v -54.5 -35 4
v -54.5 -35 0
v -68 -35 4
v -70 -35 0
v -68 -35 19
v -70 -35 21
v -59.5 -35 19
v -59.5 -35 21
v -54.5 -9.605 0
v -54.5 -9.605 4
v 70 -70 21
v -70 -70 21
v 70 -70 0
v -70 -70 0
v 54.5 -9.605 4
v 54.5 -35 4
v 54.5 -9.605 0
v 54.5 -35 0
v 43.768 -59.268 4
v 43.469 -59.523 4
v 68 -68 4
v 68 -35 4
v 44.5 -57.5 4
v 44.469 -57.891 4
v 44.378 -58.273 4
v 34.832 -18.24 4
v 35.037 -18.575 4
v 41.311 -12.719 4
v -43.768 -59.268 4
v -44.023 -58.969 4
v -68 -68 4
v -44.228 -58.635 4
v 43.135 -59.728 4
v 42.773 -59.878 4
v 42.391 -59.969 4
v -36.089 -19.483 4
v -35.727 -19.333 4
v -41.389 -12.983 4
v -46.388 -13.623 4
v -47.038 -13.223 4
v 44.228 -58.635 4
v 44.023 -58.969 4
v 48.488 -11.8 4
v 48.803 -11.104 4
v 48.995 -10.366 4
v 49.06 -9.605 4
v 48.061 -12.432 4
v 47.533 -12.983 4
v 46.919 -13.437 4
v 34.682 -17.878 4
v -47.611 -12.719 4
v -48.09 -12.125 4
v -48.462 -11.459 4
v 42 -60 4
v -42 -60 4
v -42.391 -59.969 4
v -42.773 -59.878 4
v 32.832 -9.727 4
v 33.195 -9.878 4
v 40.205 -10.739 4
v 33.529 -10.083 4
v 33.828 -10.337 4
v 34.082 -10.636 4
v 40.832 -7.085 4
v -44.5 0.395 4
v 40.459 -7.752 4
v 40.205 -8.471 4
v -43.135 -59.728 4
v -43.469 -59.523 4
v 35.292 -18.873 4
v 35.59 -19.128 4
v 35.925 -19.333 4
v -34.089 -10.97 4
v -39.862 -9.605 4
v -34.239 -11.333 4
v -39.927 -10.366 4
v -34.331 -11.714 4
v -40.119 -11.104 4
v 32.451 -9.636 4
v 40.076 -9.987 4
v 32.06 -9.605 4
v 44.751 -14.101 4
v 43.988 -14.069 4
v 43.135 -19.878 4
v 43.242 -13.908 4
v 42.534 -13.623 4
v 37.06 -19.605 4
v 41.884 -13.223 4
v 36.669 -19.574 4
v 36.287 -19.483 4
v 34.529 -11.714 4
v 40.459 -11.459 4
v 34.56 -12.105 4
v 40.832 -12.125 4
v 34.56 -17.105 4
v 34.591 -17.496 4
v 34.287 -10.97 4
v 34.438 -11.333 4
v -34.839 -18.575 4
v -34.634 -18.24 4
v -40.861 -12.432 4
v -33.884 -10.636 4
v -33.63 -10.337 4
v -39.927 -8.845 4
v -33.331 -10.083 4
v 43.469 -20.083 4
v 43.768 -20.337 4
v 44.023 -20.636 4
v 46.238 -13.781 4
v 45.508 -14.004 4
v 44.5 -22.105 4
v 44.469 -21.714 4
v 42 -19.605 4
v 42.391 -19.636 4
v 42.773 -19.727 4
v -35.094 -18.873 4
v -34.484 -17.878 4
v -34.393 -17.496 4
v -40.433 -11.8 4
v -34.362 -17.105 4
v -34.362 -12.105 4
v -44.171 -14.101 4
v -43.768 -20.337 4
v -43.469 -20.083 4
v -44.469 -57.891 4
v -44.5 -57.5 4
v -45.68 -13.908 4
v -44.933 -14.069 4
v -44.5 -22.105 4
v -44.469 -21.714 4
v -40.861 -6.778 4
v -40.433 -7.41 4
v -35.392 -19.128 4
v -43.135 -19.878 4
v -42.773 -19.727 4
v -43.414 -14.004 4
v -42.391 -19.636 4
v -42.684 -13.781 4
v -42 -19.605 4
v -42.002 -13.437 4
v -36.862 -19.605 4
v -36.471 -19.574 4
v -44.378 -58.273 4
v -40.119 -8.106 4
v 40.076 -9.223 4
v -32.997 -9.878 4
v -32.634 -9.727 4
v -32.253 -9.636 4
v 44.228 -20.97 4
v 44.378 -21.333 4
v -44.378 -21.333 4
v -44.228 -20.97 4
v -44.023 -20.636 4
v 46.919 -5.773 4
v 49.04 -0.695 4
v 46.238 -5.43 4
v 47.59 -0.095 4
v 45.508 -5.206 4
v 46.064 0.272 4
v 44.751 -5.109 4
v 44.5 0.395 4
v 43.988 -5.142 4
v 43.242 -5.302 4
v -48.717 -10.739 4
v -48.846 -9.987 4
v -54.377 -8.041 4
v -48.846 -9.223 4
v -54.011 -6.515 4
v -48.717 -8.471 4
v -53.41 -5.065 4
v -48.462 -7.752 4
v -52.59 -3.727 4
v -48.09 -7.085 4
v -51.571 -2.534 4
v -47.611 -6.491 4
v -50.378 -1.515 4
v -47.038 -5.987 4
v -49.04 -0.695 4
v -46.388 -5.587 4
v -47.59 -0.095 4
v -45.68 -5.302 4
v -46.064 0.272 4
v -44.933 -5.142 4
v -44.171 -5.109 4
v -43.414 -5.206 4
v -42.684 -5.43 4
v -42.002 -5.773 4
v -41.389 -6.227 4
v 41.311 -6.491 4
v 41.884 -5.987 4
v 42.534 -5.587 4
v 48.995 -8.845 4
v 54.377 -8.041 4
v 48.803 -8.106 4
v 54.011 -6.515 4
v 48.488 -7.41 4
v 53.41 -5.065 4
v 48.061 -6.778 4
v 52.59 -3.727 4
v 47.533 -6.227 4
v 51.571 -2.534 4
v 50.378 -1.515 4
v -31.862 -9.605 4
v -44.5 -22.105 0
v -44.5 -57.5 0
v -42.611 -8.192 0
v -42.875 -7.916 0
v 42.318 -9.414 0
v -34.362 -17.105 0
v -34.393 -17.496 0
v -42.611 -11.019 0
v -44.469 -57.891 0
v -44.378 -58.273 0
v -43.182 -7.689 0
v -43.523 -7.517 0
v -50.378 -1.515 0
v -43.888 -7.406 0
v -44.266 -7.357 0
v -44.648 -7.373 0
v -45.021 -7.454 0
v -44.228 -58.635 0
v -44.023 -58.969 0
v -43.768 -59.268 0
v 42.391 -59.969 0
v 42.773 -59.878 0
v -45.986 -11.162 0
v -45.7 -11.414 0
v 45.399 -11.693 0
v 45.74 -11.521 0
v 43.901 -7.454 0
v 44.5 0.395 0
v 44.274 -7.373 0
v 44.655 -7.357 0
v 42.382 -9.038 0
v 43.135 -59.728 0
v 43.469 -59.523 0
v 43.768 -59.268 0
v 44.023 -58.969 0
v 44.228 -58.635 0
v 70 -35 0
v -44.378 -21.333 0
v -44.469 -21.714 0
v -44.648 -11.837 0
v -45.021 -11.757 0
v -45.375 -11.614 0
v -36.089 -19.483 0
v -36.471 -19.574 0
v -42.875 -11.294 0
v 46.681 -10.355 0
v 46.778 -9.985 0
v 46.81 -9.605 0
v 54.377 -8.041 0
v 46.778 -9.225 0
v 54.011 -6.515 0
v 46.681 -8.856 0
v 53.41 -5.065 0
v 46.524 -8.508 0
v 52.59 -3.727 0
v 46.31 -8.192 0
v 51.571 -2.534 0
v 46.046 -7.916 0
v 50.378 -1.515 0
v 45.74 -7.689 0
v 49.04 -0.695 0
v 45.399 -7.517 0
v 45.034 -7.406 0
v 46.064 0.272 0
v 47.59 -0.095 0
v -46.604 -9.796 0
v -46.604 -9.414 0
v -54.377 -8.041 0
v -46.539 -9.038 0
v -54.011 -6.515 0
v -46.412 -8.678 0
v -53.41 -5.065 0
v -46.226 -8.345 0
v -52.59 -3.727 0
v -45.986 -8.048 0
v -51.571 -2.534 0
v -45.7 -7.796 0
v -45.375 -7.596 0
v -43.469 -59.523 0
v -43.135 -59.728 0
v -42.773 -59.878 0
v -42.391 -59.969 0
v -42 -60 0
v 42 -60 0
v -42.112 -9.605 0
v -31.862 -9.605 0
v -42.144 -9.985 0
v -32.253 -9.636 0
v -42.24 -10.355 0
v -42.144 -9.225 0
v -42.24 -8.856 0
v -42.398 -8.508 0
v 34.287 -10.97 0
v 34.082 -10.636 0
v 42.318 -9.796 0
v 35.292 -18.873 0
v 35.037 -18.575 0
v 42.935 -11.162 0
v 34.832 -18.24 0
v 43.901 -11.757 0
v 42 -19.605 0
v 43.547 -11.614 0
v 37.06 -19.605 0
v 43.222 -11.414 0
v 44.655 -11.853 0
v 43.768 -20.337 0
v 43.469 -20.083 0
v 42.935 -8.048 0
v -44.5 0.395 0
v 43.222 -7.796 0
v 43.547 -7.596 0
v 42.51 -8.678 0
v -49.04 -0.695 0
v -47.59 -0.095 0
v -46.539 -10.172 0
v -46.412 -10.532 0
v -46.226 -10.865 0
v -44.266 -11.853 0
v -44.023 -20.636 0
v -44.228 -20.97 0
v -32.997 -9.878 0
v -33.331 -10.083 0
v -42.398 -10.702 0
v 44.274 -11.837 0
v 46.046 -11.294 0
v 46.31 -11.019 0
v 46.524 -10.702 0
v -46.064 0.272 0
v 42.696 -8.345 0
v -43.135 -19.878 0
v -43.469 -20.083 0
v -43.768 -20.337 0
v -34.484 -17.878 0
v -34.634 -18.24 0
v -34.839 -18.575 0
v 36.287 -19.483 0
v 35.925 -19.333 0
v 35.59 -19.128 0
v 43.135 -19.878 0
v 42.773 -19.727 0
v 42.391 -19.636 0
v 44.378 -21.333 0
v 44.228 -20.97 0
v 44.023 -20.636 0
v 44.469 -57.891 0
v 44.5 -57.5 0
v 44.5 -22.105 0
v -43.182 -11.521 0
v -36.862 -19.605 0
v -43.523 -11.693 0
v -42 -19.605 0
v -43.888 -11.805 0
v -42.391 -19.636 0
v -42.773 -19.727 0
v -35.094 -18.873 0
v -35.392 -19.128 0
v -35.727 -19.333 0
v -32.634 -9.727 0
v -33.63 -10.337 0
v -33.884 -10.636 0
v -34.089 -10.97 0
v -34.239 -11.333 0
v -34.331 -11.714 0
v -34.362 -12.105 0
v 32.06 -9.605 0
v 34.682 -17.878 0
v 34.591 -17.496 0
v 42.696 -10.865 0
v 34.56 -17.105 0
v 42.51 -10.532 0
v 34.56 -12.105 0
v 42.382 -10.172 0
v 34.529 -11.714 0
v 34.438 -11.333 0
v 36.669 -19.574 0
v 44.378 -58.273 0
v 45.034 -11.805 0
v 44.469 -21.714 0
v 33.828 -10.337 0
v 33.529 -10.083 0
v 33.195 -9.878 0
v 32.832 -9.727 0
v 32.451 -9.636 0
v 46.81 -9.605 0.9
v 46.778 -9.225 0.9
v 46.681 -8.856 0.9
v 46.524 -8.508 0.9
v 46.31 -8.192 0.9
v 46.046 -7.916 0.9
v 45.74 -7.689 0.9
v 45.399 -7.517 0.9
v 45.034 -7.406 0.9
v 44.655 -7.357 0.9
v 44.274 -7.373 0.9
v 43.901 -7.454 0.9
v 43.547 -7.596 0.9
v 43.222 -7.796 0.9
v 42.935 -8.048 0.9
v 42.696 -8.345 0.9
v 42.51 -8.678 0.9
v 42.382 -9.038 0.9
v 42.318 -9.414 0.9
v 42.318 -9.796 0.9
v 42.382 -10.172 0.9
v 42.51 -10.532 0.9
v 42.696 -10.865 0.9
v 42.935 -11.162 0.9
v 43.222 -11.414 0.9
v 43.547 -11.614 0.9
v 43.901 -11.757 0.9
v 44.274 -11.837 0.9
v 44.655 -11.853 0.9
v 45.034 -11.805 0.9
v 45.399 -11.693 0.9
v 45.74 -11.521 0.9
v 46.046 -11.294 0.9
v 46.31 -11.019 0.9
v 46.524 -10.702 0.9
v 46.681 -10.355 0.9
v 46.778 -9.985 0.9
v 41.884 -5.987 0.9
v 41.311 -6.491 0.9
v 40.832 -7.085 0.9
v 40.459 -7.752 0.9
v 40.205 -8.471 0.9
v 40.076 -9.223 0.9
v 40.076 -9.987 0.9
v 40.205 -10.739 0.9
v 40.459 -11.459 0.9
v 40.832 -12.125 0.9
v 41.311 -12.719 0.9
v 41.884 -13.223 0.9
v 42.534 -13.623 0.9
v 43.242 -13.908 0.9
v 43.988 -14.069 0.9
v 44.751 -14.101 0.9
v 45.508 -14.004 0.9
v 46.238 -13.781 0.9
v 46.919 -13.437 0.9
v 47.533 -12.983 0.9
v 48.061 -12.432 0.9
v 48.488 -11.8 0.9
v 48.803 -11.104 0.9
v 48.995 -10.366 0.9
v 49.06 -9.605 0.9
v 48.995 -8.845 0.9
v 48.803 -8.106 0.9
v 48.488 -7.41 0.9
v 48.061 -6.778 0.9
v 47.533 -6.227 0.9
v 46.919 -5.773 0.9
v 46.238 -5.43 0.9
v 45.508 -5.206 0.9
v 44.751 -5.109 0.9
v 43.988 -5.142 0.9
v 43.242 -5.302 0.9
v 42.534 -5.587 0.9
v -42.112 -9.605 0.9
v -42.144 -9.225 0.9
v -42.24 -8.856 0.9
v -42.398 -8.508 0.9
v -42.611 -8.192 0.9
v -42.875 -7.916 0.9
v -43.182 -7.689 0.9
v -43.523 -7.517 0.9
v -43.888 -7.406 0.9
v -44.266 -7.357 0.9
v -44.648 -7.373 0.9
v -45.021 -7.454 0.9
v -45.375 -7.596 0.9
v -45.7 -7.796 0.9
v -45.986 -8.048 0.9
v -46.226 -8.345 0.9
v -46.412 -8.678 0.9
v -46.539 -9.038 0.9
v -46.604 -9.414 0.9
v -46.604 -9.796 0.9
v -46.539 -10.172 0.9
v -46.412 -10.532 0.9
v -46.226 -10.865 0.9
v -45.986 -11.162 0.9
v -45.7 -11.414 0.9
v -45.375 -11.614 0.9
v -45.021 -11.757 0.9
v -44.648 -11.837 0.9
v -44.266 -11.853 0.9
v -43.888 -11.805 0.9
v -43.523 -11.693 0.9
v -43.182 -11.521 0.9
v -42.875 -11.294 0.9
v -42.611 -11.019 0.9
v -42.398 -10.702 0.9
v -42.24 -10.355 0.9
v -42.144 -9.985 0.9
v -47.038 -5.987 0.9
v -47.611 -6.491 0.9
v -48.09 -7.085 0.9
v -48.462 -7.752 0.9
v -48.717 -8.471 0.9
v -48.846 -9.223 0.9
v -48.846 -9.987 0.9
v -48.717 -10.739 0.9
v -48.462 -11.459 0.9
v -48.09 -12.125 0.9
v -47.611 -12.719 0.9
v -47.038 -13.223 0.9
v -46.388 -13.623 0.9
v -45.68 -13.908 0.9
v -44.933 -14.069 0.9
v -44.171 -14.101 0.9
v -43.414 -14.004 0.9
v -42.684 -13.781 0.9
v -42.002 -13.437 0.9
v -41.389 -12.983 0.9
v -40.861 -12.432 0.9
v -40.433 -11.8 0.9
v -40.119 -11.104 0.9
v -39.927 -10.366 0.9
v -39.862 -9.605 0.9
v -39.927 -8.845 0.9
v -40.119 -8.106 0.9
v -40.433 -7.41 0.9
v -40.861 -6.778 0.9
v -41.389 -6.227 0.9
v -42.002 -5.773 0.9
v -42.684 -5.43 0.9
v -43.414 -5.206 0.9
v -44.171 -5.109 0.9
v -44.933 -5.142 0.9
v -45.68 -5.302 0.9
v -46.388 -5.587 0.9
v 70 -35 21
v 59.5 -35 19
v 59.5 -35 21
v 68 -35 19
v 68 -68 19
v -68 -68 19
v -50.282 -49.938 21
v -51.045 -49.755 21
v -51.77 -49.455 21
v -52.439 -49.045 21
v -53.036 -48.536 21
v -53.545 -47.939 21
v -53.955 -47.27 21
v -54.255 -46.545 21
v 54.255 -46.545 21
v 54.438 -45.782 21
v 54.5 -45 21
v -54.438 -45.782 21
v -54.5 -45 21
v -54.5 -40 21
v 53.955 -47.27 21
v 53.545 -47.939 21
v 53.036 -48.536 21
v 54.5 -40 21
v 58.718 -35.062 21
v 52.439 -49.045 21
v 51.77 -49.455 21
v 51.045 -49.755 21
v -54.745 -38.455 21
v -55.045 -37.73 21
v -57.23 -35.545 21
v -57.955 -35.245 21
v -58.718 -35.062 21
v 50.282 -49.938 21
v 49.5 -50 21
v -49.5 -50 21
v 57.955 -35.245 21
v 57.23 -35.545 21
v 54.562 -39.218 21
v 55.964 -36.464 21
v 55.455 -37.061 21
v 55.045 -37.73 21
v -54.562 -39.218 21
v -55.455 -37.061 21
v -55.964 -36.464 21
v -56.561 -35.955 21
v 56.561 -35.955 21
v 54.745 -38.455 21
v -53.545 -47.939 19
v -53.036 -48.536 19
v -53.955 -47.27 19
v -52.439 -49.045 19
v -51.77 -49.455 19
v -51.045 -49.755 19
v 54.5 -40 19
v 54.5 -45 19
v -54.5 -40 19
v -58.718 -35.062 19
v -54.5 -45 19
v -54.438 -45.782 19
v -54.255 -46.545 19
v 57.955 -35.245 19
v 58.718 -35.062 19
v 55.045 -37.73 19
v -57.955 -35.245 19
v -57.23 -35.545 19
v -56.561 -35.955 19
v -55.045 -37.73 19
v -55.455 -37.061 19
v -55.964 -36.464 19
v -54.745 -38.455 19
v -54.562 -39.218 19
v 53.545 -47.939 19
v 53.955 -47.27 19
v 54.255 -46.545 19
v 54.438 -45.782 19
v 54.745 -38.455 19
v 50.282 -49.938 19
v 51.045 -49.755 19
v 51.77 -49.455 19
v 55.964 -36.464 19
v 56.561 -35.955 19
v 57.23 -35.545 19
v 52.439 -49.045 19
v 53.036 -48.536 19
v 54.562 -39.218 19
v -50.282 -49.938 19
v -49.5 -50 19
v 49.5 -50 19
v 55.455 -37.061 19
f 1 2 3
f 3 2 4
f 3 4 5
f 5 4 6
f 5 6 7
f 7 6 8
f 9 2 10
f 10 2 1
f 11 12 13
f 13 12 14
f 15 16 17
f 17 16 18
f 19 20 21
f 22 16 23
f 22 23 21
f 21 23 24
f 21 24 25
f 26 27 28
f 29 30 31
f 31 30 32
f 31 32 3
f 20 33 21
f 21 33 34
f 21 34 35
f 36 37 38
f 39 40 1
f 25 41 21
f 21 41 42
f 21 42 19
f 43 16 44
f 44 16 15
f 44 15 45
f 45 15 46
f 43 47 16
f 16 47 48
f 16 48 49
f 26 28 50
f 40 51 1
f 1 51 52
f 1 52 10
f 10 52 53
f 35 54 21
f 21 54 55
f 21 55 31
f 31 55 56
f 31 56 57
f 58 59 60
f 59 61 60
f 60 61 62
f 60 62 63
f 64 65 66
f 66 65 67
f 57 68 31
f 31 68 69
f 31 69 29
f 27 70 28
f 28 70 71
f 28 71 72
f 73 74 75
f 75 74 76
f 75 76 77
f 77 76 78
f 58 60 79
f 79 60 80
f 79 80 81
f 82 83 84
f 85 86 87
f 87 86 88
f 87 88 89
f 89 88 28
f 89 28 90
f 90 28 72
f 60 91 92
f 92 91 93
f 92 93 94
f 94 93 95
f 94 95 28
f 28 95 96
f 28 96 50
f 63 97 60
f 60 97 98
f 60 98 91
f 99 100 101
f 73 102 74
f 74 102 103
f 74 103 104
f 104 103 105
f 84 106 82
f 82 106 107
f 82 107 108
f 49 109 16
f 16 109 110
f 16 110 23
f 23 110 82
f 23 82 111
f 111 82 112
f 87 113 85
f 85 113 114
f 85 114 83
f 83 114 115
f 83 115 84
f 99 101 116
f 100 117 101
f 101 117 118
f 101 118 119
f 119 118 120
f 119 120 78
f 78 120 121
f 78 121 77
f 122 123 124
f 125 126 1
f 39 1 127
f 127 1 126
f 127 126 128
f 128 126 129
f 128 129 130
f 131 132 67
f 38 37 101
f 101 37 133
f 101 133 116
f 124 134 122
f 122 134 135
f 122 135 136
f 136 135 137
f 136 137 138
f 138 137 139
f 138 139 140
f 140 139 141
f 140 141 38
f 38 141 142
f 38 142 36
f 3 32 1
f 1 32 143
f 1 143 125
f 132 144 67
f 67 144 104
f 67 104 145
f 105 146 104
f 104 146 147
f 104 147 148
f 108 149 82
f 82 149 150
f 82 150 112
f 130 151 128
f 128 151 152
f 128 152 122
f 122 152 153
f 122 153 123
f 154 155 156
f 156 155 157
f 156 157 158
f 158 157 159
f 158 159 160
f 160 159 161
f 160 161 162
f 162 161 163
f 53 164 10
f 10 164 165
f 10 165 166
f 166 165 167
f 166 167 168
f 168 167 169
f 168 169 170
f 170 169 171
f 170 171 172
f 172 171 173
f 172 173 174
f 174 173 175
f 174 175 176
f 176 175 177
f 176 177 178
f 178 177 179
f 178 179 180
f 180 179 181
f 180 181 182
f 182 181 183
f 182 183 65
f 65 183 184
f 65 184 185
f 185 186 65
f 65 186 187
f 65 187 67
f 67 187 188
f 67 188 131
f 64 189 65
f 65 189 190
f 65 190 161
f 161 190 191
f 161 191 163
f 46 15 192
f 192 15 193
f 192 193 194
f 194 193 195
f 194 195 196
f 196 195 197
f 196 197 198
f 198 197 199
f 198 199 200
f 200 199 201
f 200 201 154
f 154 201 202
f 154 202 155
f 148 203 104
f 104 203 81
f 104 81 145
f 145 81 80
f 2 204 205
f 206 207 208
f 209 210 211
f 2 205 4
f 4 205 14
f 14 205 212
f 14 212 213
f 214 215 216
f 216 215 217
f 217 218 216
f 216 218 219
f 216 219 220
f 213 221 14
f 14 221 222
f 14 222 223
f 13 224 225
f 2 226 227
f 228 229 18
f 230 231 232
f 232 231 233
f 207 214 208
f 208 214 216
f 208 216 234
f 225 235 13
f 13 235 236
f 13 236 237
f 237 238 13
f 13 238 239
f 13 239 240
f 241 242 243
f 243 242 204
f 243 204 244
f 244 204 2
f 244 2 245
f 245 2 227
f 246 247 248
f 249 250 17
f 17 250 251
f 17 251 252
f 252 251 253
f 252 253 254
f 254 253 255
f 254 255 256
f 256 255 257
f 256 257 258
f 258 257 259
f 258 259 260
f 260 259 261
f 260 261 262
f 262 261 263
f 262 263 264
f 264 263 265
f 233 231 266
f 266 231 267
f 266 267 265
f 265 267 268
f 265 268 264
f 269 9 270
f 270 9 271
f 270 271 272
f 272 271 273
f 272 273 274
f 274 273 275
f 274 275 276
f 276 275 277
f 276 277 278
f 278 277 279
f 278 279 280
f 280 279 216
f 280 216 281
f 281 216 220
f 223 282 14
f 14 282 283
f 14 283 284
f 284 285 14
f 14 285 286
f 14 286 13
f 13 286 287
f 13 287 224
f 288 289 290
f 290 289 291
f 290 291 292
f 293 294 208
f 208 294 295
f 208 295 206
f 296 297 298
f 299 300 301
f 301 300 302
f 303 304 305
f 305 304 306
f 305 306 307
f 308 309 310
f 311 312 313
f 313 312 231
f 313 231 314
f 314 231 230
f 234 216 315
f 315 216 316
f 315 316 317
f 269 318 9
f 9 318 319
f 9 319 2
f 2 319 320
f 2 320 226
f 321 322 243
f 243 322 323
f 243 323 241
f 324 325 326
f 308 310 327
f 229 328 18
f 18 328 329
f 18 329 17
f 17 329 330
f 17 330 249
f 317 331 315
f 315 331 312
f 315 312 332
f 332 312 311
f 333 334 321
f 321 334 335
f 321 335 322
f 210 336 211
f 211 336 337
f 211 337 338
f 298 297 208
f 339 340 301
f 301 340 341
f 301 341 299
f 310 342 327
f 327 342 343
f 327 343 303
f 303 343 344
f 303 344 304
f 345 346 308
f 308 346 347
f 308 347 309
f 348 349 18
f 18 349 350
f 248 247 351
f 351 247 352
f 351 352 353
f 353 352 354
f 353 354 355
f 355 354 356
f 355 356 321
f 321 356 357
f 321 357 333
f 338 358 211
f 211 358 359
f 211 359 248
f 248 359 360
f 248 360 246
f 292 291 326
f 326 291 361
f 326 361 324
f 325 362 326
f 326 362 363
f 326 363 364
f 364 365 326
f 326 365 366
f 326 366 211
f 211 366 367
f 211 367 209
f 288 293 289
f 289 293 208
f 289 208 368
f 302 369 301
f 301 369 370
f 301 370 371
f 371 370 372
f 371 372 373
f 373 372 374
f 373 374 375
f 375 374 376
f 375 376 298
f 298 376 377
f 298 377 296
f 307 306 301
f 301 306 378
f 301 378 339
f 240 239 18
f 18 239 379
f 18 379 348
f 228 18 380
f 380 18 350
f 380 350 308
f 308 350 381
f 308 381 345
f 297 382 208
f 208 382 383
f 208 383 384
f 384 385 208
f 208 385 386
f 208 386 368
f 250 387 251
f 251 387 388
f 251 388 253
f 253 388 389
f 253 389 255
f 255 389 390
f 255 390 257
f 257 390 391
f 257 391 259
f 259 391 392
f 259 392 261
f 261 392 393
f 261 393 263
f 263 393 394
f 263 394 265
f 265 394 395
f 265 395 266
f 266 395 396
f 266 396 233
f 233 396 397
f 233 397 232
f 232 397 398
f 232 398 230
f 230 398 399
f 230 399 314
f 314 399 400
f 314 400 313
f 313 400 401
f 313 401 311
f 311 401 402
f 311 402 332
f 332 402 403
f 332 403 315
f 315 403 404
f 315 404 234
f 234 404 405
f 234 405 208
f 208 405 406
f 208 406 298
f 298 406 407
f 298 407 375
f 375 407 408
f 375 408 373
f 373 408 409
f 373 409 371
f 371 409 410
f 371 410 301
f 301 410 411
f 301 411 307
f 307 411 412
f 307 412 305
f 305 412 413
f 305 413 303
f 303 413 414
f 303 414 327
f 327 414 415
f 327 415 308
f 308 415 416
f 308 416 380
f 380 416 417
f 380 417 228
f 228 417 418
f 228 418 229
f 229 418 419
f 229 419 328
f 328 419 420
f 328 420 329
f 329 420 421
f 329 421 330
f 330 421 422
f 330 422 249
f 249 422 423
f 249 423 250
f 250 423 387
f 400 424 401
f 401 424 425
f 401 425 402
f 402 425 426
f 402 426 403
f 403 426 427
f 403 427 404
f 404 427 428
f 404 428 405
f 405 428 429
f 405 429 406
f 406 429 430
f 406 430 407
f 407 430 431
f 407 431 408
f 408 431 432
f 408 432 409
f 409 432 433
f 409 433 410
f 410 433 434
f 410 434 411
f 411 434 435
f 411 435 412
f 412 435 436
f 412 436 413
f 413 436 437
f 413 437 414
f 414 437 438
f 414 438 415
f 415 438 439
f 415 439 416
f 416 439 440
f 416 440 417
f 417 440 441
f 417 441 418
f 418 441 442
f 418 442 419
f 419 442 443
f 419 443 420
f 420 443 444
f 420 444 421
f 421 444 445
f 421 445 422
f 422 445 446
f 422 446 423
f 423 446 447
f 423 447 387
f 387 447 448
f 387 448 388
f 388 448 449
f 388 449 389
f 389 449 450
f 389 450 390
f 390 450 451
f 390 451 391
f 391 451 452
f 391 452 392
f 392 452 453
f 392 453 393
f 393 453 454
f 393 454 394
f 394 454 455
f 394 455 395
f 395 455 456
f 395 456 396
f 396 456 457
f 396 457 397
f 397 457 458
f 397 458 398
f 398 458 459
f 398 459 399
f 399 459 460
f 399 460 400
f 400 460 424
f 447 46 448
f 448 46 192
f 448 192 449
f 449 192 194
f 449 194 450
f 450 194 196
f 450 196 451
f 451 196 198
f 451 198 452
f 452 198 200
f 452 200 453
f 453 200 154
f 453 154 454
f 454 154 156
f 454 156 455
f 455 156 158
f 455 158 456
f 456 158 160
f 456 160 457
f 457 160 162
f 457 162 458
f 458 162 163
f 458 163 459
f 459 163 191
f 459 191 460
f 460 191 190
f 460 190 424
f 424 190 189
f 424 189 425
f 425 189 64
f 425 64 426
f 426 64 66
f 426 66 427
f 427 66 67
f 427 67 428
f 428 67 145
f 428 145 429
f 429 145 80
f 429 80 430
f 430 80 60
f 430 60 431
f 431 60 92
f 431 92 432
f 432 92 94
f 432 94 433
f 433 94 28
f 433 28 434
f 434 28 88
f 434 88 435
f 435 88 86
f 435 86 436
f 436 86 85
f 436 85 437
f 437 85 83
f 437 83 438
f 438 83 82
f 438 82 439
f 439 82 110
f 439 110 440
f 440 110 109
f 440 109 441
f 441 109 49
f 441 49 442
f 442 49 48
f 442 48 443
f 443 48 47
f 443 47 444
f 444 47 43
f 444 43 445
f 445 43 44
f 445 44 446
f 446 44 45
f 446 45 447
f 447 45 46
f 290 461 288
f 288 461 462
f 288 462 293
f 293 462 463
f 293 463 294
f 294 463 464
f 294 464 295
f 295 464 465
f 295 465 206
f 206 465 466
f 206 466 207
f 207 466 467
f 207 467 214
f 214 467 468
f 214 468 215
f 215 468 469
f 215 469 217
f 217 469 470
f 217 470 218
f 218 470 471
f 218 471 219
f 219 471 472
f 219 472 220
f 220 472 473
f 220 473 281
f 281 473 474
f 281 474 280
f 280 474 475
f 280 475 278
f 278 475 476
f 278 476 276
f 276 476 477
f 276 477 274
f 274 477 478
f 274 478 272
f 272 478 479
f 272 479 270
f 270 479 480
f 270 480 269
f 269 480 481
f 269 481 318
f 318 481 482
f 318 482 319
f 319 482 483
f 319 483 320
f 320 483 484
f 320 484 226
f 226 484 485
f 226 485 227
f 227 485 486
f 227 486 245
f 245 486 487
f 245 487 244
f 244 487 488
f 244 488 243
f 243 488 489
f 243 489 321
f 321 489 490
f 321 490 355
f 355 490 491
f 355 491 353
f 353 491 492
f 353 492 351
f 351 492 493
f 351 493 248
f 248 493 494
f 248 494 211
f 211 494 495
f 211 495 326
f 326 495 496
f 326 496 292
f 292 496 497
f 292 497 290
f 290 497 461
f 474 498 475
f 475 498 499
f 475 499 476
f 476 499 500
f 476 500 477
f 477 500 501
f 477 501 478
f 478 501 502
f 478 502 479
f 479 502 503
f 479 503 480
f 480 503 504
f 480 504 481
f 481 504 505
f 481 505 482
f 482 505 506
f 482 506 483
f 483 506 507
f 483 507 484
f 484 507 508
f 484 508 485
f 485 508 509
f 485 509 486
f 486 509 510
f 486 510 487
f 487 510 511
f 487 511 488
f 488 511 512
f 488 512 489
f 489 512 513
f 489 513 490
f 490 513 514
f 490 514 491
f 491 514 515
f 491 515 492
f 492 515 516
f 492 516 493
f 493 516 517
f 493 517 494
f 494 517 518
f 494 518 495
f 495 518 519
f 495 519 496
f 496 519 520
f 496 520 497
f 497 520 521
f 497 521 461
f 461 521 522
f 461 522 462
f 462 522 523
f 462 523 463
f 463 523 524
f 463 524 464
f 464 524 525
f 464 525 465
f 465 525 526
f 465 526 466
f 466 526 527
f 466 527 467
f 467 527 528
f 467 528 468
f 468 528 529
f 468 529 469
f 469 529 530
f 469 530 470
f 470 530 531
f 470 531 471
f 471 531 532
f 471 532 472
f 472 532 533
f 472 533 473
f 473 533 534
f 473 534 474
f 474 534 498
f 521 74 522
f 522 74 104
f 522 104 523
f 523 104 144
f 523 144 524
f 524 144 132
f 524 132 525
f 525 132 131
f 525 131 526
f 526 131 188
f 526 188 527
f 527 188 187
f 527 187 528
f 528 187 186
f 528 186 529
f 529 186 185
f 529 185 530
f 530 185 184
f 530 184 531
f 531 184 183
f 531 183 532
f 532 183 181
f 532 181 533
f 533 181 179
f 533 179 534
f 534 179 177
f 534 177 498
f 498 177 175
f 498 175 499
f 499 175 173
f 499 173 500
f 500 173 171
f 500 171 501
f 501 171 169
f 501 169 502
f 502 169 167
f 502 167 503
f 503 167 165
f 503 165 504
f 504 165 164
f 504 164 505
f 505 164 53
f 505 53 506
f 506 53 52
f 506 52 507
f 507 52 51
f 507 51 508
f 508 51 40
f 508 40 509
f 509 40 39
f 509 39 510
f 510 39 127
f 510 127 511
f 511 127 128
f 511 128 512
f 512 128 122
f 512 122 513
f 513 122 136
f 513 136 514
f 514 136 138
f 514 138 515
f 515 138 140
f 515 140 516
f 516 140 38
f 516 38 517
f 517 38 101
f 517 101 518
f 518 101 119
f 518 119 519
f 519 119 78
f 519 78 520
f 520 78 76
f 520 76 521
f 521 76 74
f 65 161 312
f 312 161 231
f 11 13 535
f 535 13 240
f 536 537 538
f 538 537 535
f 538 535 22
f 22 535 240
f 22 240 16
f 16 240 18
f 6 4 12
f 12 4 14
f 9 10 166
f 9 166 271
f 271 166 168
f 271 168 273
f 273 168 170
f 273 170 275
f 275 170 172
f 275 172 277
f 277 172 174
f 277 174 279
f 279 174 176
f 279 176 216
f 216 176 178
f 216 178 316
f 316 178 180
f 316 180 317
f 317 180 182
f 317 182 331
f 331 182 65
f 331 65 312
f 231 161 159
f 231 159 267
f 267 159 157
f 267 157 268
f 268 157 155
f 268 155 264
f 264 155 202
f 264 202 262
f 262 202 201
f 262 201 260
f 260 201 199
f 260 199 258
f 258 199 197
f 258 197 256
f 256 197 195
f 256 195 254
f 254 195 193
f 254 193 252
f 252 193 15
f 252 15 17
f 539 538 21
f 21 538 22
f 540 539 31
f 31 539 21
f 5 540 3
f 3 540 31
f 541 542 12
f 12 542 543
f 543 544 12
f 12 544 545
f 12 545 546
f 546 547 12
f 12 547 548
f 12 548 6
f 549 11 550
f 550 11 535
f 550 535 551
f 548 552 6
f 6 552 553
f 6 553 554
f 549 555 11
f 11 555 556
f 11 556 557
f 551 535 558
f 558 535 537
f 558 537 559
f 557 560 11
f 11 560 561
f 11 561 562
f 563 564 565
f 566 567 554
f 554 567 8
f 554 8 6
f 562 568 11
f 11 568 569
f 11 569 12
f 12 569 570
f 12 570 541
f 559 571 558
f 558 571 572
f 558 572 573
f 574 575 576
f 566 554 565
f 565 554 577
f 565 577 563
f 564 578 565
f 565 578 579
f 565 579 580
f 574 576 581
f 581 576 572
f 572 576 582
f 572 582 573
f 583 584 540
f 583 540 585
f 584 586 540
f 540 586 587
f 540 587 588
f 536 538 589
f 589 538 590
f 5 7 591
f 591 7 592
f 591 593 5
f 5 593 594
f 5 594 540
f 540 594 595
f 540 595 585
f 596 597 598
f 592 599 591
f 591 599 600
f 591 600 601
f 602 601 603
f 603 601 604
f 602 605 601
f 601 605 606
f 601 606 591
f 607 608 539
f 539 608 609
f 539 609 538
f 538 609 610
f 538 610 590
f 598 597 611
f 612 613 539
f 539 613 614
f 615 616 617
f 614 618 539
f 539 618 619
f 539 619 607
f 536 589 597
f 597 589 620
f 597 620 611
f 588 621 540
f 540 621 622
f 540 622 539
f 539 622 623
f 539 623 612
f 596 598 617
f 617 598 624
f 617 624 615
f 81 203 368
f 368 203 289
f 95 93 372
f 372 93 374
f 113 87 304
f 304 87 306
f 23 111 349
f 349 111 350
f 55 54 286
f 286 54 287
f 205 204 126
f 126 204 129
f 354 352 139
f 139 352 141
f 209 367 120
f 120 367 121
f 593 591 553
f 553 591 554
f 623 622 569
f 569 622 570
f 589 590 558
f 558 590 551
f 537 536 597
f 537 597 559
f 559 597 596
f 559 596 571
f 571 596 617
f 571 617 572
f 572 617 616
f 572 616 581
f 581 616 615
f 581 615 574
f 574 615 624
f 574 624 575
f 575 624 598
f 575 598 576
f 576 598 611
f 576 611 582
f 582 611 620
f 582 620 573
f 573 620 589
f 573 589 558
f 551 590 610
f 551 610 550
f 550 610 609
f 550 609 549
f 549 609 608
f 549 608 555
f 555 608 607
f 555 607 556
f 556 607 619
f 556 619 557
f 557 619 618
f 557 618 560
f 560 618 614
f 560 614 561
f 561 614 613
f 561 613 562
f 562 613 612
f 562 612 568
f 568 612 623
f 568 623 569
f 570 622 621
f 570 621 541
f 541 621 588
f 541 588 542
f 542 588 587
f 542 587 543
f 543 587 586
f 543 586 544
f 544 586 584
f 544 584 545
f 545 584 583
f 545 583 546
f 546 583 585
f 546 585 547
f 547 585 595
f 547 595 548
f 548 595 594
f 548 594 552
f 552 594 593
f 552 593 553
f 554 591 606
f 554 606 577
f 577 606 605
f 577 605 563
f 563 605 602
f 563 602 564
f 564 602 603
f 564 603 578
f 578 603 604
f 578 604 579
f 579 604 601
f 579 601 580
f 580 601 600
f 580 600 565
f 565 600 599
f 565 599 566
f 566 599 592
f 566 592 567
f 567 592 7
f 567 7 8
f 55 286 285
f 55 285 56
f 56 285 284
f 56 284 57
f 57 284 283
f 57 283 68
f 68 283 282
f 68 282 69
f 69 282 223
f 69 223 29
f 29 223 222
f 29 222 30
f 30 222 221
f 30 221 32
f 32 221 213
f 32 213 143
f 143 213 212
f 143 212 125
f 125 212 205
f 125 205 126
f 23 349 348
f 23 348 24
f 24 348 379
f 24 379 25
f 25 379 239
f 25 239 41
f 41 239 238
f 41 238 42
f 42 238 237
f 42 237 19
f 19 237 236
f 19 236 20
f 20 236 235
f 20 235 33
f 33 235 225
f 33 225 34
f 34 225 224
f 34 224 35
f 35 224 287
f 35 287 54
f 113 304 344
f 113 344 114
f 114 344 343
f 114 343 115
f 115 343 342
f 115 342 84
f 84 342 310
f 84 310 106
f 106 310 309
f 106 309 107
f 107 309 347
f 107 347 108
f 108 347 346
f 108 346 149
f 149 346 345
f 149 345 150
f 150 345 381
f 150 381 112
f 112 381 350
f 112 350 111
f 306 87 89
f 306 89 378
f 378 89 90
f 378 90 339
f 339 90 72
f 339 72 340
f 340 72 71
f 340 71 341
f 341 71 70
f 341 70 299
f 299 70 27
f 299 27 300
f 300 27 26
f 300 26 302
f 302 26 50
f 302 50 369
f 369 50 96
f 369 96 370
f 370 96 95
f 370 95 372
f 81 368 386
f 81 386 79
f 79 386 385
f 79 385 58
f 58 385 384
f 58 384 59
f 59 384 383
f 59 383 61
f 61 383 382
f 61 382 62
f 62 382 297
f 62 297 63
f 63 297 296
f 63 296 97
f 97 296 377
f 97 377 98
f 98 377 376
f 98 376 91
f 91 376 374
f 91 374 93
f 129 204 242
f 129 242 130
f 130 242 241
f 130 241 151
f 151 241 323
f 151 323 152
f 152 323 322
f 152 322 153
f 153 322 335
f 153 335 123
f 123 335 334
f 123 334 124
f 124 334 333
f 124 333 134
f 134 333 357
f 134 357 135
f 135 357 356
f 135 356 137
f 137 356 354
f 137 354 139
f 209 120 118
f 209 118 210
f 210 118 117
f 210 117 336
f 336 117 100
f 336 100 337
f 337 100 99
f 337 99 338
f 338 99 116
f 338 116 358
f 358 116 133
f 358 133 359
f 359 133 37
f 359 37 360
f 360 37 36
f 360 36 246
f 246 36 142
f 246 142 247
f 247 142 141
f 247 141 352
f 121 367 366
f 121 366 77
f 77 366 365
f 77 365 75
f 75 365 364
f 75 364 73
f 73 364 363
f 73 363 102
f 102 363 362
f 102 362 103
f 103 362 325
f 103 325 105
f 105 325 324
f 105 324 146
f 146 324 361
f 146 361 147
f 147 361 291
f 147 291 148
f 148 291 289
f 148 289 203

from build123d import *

# Parameters (mm, degrees)
SKETCH1_W                                        = 109
SKETCH1_H                                        = 140
BOSS_EXTRUDE1_DEPTH                              = 4
CBORE_FOR_M4_PAN_HEAD_MACHINE_SCREW1_D           = 4.5
CBORE_FOR_M4_PAN_HEAD_MACHINE_SCREW1_CBORE_D     = 9
CBORE_FOR_M4_PAN_HEAD_MACHINE_SCREW1_CBORE_DEPTH = 3.1
SKETCH6_W                                        = 25.091702427
SKETCH6_H                                        = 69.60512686
CUT_EXTRUDE1_DEPTH                               = 89.804560694
SKETCH7_W                                        = 140
SKETCH7_H                                        = 35
BOSS_EXTRUDE2_DEPTH                              = 4
FILLET1_R                                        = 10
BOSS_EXTRUDE3_DEPTH                              = 15
SKETCH9_W                                        = 2
SKETCH9_H                                        = 35
BOSS_EXTRUDE4_DEPTH                              = 140
CUT_EXTRUDE3_DEPTH                               = 101.444014257
SKETCH11_W                                       = 109
SKETCH11_H                                       = 15
CUT_EXTRUDE4_DEPTH                               = 2
FILLET6_R                                        = 5
CUT_EXTRUDE5_REACH                               = 103.198
SKETCH13_W                                       = 4
SKETCH13_H                                       = 73.569558417
CUT_EXTRUDE5_DIRECTION_2_REACH                   = 103.198
SKETCH14_W                                       = 4
SKETCH14_H                                       = 10
BOSS_EXTRUDE5_DEPTH                              = 38.816595147
FILLET9_R                                        = 2.5


with BuildPart() as part:
    # Sketch1 → Boss-Extrude1 (new body)
    with BuildSketch(Plane.XY):
        Rectangle(SKETCH1_W, SKETCH1_H)
    extrude(amount=BOSS_EXTRUDE1_DEPTH)

    # CBORE for M4 Pan Head Machine Screw1 (through all)
    with Locations(Plane.XY.offset(4)):
        with Locations((-19.408297573, 58.521958499), (19.408297573, 58.521958499), (-44.361823025, -9.60512686), (44.559866877, -9.60512686)):
            CounterBoreHole(CBORE_FOR_M4_PAN_HEAD_MACHINE_SCREW1_D / 2, CBORE_FOR_M4_PAN_HEAD_MACHINE_SCREW1_CBORE_D / 2, CBORE_FOR_M4_PAN_HEAD_MACHINE_SCREW1_CBORE_DEPTH)

    # Sketch6 → Cut-Extrude1 (cut, through all)
    with BuildSketch(Plane.XY.offset(4)):
        with Locations((-41.954148786, 35.19743657)):
            Rectangle(SKETCH6_W, SKETCH6_H)
        with Locations((41.954148786, 35.19743657)):
            Rectangle(SKETCH6_W, SKETCH6_H)
    extrude(amount=-CUT_EXTRUDE1_DEPTH, mode=Mode.SUBTRACT)

    # Sketch7 → Boss-Extrude2 (add, through all)
    with BuildSketch(Plane.XY.offset(4)):
        with Locations((0, -52.5)):
            Rectangle(SKETCH7_W, SKETCH7_H)
    extrude(amount=-BOSS_EXTRUDE2_DEPTH)

    # Fillet1
    fillet1_edges = [part.edges().sort_by_distance(p)[0] for p in [
        (-29.408297573, 70, 2),
        (-54.5, 0.39487314, 2),
        (29.408297573, 70, 2),
        (54.5, 0.39487314, 2),
    ]]
    fillet(fillet1_edges, radius=FILLET1_R)

    # Sketch8 → Boss-Extrude3 (add)
    with BuildSketch(Plane.XY.offset(4)):
        Polygon((-70, -35), (-70, -70), (70, -70), (70, -35), (68, -35), (68, -68), (-68, -68), (-68, -35), align=None)
    extrude(amount=BOSS_EXTRUDE3_DEPTH)

    # Sketch9 → Boss-Extrude4 (add, through all)
    with BuildSketch(Plane.ZY.offset(70)):
        with Locations((20, -52.5)):
            Rectangle(SKETCH9_W, SKETCH9_H)
    extrude(amount=-BOSS_EXTRUDE4_DEPTH)

    # Sketch10 → Cut-Extrude3 (cut, through all)
    with BuildSketch(Plane.XY.offset(4)):
        Polygon((-19.408297573, 48.521958499), (-9.408297573, 48.521958499), (-9.408297573, 60), (9.408297573, 60), (9.408297573, 48.521958499), (19.408297573, 48.521958499), (19.408297573, -9.60512686), (34.559866877, -9.60512686), (34.559866877, -19.60512686), (44.5, -19.60512686), (44.5, -60), (-44.5, -60), (-44.5, -19.60512686), (-34.361823025, -19.60512686), (-34.361823025, -9.60512686), (-19.408297573, -9.60512686), align=None)
    extrude(amount=-CUT_EXTRUDE3_DEPTH, mode=Mode.SUBTRACT)

    # Sketch11 → Cut-Extrude4 (cut)
    with BuildSketch(Plane.XY.offset(21)):
        with Locations((0, -42.5)):
            Rectangle(SKETCH11_W, SKETCH11_H)
    extrude(amount=-CUT_EXTRUDE4_DEPTH, mode=Mode.SUBTRACT)

    # Fillet6
    fillet6_edges = [part.edges().sort_by_distance(p)[0] for p in [
        (-54.5, -50, 20),
        (54.5, -50, 20),
        (54.5, -35, 20),
        (-54.5, -35, 20),
    ]]
    fillet(fillet6_edges, radius=FILLET6_R)

    # Cut-Extrude5: up to this face of the body (flat: up to its plane)
    cut_extrude5_end = Plane(part.part.faces().sort_by_distance((-29.408297573, 30.19743657, 2))[0])
    # Sketch13 → Cut-Extrude5 (cut, up to the picked face)
    with BuildSketch(Plane(origin=(0, 0, 0), x_dir=(0, 0, -1), z_dir=(1, 0, 0)), mode=Mode.PRIVATE) as cut_extrude5_sk1:
        with Locations((-2, 37.179652349)):
            Rectangle(SKETCH13_W, SKETCH13_H)
    cut_extrude5_tool1 = split(extrude(cut_extrude5_sk1.sketch, amount=-CUT_EXTRUDE5_REACH, mode=Mode.PRIVATE), bisect_by=cut_extrude5_end, keep=Keep.BOTH, mode=Mode.PRIVATE)
    add(cut_extrude5_tool1.solids().sort_by(Axis((0, 37.179652, 2), (-1, 0, 0)))[0], mode=Mode.SUBTRACT)

    # Cut-Extrude5 direction 2: up to this face of the body (flat: up to its plane)
    cut_extrude5_direction_2_end = Plane(part.part.faces().sort_by_distance((29.408297573, 30.19743657, 2))[0])
    # Sketch13 → Cut-Extrude5 direction 2 (cut, up to the picked face)
    with BuildSketch(Plane(origin=(0, 0, 0), x_dir=(0, 0, -1), z_dir=(1, 0, 0)), mode=Mode.PRIVATE) as cut_extrude5_direction_2_sk1:
        with Locations((-2, 37.179652349)):
            Rectangle(SKETCH13_W, SKETCH13_H)
    cut_extrude5_direction_2_tool1 = split(extrude(cut_extrude5_direction_2_sk1.sketch, amount=CUT_EXTRUDE5_DIRECTION_2_REACH, mode=Mode.PRIVATE), bisect_by=cut_extrude5_direction_2_end, keep=Keep.BOTH, mode=Mode.PRIVATE)
    add(cut_extrude5_direction_2_tool1.solids().sort_by(Axis((0, 37.179652, 2), (1, 0, 0)))[0], mode=Mode.SUBTRACT)

    # Sketch14 → Boss-Extrude5 (add)
    with BuildSketch(Plane.ZY.offset(-19.408297573)):
        with Locations((2, -4.60512686)):
            Rectangle(SKETCH14_W, SKETCH14_H)
    extrude(amount=BOSS_EXTRUDE5_DEPTH)

    # Fillet9
    fillet9_edges = [part.edges().sort_by_distance(p)[0] for p in [
        (34.559866877, -9.60512686, 2),
        (34.559866877, -19.60512686, 2),
        (44.5, -19.60512686, 2),
        (44.5, -60, 2),
        (-44.5, -60, 2),
        (-44.5, -19.60512686, 2),
        (-34.361823025, -19.60512686, 2),
        (-34.361823025, -9.60512686, 2),
    ]]
    fillet(fillet9_edges, radius=FILLET9_R)


solid = part.part
